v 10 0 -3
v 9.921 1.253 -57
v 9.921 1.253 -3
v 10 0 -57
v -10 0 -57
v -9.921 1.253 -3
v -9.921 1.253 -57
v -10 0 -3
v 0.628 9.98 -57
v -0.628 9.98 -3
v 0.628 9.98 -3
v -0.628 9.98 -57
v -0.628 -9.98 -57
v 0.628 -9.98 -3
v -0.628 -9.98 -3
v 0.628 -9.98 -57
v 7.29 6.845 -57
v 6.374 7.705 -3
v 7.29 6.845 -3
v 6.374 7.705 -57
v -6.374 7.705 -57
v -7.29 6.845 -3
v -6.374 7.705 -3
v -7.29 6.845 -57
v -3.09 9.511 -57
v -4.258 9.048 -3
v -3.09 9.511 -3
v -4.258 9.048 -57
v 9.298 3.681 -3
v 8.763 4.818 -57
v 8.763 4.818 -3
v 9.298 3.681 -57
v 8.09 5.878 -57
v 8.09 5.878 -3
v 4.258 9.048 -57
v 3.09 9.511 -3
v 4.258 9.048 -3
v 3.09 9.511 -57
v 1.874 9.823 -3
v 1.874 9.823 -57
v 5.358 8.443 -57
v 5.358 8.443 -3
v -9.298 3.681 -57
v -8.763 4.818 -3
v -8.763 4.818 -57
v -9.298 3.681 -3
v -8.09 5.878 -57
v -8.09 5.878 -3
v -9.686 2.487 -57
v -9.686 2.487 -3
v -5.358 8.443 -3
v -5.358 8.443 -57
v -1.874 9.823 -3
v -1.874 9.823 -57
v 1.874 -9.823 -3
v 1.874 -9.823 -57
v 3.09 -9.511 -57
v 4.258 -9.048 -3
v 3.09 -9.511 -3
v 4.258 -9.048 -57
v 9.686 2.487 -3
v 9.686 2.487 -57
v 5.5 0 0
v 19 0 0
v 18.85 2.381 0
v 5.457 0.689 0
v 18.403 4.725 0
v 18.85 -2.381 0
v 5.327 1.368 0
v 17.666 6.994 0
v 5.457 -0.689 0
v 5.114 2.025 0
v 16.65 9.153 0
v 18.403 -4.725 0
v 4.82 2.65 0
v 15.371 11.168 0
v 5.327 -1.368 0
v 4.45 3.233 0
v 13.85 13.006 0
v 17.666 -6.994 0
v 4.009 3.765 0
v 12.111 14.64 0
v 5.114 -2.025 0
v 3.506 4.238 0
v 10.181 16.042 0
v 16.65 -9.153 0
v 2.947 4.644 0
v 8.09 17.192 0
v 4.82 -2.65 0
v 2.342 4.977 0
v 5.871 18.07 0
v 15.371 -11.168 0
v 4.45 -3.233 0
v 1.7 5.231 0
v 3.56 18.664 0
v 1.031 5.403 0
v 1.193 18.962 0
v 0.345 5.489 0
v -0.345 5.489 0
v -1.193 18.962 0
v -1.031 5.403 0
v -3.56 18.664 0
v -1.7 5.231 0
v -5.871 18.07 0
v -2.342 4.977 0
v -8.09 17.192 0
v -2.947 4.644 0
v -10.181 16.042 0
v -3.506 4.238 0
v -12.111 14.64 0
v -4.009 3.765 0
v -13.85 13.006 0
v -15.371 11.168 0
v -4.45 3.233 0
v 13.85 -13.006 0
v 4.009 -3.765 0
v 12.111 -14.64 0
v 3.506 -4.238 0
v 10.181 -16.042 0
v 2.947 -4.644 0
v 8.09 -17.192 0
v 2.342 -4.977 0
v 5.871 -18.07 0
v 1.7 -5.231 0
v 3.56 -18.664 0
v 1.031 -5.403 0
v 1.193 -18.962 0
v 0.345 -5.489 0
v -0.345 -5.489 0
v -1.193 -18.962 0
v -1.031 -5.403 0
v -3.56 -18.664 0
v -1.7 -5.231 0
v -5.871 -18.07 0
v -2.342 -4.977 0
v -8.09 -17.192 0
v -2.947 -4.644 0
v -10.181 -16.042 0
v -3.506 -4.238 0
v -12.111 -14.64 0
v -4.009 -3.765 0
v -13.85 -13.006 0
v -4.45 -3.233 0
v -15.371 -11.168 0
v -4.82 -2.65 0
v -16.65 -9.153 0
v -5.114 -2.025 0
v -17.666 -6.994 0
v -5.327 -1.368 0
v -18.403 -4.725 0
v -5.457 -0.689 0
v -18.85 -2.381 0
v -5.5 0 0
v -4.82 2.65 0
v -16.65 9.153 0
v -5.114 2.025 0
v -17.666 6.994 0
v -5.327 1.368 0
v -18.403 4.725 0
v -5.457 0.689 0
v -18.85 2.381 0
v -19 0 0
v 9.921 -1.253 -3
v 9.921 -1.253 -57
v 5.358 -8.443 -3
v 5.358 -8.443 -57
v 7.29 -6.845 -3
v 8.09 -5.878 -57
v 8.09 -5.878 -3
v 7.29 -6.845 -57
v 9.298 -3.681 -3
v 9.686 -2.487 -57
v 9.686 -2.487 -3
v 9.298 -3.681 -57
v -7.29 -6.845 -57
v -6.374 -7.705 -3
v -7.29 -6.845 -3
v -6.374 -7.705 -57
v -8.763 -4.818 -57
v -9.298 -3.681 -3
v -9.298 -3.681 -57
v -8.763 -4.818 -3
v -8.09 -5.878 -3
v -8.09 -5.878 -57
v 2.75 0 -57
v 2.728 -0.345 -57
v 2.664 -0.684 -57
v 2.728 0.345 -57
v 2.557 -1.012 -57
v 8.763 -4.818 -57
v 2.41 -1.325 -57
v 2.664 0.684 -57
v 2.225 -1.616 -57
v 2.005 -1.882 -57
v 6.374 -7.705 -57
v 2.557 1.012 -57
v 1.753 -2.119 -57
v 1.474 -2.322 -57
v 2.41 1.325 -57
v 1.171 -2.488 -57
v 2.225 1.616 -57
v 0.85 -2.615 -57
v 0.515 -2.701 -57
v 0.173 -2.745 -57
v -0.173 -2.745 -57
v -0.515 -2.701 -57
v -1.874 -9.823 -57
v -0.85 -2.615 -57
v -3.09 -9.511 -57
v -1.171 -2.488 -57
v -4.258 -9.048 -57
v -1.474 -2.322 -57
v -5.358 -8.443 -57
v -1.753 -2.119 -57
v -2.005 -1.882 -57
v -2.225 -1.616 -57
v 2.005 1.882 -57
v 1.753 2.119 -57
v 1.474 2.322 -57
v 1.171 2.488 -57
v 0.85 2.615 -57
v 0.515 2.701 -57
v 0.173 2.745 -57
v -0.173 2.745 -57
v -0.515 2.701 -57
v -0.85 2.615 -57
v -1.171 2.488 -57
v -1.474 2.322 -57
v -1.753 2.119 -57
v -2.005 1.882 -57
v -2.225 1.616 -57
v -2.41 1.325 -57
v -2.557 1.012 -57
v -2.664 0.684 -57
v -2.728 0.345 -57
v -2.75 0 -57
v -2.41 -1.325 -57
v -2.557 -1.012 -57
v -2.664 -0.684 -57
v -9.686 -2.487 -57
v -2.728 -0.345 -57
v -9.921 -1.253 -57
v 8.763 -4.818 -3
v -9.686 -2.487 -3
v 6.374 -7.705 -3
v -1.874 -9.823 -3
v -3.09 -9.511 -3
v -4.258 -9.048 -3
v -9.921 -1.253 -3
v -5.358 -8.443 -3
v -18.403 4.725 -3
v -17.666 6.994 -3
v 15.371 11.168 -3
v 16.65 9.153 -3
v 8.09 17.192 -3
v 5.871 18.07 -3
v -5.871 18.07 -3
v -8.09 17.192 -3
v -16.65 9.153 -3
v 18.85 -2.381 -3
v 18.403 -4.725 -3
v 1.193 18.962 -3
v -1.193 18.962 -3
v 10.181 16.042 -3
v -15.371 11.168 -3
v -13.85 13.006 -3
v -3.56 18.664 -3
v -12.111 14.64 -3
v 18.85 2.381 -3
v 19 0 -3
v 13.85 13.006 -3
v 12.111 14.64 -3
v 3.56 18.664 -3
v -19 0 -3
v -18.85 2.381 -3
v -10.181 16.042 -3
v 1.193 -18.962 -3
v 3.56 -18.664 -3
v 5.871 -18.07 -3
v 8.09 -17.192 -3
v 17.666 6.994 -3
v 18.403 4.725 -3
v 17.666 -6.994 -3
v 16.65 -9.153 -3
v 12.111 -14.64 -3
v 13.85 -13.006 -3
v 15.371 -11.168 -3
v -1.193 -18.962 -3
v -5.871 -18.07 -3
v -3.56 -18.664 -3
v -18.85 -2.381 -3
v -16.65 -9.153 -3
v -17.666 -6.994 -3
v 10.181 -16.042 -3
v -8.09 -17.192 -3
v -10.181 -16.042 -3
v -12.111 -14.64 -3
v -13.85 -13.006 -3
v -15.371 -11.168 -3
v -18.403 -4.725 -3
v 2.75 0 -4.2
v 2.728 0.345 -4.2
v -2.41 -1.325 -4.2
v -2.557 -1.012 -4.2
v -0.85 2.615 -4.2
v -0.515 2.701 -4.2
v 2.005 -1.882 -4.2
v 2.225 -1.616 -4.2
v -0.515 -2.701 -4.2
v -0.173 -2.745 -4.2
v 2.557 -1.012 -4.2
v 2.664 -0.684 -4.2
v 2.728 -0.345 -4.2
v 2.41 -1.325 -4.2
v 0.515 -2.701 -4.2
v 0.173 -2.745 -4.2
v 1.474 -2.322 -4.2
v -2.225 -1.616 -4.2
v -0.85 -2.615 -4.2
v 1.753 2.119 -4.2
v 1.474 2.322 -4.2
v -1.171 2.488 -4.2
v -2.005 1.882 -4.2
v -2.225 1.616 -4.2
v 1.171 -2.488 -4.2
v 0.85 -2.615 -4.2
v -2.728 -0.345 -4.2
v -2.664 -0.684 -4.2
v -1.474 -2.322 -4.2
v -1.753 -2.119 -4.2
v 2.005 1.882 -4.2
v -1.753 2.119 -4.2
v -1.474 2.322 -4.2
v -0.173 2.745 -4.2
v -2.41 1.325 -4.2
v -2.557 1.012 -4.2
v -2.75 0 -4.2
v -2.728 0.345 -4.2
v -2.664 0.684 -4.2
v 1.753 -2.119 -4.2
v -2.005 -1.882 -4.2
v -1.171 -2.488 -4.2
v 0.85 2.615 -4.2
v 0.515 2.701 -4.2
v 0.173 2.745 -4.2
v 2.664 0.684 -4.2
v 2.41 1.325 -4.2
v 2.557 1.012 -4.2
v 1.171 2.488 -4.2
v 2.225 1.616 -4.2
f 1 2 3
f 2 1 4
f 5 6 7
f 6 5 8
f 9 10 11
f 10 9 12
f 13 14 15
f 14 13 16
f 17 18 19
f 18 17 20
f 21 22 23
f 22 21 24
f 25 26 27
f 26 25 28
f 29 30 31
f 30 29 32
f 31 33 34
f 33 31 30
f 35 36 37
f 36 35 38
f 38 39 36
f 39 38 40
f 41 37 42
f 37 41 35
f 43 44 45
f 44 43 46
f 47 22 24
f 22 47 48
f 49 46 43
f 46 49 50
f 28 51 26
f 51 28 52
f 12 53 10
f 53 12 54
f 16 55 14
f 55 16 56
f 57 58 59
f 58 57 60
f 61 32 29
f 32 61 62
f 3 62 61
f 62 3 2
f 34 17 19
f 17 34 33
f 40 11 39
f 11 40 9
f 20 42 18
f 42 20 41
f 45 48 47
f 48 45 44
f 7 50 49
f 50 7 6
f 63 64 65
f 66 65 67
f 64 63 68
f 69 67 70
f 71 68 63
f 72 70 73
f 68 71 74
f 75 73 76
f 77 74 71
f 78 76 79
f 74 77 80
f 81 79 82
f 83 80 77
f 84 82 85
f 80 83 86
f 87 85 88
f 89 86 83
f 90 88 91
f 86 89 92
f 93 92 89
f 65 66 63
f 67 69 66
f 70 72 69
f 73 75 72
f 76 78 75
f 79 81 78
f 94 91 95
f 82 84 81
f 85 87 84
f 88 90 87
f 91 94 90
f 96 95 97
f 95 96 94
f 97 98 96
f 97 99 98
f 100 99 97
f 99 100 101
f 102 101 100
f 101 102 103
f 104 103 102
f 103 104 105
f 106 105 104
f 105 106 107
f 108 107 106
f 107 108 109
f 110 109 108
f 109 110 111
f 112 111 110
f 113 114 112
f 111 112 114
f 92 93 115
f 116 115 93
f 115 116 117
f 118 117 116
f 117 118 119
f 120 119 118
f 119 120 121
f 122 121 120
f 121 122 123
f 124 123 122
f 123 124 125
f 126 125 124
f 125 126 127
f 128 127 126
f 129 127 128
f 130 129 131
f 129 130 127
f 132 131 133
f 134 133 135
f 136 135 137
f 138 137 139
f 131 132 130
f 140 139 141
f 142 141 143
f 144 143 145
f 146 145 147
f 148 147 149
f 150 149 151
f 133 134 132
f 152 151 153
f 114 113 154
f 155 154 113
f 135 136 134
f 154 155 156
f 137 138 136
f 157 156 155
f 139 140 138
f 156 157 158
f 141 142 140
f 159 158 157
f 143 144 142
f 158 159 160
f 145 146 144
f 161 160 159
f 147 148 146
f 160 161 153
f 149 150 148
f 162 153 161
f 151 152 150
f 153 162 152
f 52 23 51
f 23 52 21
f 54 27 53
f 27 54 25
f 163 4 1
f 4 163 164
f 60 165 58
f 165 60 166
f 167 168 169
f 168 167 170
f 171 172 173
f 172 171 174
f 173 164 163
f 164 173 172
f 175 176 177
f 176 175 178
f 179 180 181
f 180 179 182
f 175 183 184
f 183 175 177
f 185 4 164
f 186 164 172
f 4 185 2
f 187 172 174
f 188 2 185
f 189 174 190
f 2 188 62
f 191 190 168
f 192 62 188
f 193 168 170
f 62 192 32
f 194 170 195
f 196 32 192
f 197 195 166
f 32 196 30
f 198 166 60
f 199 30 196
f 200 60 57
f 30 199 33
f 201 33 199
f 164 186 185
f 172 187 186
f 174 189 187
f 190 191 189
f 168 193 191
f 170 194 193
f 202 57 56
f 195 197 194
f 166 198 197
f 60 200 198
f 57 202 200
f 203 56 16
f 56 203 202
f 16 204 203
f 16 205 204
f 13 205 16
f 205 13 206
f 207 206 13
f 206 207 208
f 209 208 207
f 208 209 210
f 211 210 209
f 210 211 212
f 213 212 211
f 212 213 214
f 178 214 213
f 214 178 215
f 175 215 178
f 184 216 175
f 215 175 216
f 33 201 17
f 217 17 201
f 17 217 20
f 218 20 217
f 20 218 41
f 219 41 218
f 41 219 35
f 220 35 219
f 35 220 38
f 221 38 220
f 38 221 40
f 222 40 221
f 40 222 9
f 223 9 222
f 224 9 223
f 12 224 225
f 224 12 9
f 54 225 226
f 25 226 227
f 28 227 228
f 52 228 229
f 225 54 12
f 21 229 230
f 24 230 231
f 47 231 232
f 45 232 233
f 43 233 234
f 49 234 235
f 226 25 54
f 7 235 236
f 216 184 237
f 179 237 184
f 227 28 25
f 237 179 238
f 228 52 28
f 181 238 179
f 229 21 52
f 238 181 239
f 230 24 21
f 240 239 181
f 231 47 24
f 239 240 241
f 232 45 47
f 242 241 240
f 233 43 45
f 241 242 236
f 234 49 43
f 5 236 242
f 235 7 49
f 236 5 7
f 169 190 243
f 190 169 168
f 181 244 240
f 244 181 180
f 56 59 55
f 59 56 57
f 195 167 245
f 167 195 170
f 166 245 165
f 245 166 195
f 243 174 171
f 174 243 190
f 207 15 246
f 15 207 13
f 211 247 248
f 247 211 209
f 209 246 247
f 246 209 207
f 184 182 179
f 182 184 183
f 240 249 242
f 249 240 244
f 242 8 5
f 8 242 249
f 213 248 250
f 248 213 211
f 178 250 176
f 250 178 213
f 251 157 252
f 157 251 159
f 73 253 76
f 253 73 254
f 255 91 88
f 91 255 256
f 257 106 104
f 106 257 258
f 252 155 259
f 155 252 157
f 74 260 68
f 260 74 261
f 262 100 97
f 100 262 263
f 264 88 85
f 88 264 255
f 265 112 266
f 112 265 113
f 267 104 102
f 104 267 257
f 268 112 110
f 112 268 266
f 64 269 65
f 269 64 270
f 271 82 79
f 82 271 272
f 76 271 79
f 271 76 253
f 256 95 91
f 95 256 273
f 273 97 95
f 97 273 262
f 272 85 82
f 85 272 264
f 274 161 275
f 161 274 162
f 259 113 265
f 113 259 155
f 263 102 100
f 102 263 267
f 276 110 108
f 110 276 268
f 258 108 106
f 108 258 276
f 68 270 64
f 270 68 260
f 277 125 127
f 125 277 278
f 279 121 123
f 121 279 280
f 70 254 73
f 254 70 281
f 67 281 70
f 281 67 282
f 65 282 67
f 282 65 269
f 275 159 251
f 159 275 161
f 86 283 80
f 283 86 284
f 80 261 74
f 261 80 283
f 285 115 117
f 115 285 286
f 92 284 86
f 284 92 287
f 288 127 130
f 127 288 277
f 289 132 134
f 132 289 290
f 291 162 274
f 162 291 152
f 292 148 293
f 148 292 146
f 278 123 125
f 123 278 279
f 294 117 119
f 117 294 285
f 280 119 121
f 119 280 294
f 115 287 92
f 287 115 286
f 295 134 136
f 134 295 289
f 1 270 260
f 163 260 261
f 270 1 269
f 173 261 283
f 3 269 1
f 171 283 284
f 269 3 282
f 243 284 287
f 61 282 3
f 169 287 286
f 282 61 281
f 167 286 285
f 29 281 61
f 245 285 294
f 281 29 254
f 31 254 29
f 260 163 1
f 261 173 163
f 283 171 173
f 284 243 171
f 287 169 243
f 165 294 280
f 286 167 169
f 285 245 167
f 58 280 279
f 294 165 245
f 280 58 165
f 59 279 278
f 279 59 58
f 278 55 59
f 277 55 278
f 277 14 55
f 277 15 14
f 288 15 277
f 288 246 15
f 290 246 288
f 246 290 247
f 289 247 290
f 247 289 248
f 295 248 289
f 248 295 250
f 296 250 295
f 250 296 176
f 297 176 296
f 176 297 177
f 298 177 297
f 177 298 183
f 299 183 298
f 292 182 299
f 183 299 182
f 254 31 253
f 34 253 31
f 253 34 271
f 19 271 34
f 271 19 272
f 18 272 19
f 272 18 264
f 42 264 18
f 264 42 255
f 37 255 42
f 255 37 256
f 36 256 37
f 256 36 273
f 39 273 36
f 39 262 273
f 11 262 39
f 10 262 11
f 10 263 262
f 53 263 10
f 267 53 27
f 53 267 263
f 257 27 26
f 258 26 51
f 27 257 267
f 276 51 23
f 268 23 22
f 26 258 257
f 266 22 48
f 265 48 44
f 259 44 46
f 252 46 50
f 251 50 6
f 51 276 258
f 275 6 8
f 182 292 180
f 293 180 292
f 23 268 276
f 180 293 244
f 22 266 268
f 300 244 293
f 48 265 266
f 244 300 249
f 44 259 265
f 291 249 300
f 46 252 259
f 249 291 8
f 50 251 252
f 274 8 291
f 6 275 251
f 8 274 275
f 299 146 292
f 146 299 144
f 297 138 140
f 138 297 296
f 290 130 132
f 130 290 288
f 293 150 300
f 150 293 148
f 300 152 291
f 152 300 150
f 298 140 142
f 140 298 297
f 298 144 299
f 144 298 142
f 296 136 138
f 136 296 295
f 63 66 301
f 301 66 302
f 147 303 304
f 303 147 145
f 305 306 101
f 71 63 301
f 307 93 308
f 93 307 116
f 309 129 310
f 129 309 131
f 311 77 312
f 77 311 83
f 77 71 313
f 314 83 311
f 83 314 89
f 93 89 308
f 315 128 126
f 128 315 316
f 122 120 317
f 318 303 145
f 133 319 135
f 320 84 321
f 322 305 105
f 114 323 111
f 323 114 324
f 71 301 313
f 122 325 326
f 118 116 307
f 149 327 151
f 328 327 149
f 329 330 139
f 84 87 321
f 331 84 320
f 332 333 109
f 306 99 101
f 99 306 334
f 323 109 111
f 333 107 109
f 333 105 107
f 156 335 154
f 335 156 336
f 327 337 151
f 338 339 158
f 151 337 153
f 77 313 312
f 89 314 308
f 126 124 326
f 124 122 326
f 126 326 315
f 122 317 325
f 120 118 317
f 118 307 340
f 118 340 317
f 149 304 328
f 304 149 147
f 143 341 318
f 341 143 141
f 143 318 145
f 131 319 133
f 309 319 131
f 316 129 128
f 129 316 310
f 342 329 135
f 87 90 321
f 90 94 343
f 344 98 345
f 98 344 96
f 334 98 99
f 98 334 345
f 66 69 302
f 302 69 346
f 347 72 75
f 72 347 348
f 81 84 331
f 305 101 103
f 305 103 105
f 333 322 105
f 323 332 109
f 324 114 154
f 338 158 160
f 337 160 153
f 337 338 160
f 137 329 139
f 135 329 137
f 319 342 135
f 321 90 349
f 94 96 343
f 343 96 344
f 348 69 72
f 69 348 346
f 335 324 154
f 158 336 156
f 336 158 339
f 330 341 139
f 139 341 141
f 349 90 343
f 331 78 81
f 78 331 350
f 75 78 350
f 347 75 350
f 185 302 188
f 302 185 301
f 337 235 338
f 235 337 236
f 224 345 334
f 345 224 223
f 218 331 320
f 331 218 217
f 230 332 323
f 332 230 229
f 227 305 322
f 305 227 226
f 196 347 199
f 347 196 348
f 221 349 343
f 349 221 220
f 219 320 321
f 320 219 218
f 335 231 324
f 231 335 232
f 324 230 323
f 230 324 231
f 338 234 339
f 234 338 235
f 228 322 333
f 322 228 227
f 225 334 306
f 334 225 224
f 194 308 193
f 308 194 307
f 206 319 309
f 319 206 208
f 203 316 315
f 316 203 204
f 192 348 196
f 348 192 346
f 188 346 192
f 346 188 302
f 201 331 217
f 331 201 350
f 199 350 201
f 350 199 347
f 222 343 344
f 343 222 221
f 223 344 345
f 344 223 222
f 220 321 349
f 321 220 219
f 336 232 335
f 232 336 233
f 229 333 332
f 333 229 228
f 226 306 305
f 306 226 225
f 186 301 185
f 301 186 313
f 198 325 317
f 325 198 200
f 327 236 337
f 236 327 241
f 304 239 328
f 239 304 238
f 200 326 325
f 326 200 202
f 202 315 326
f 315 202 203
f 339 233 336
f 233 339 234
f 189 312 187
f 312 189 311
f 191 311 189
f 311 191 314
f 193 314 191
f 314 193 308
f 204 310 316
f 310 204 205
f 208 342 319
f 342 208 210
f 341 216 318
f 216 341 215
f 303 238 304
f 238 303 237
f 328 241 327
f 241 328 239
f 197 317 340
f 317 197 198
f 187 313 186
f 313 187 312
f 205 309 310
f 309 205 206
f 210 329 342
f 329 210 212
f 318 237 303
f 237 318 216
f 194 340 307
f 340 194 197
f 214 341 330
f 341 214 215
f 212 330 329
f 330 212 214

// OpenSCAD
$fn = 50;


difference() {
	union() {
		translate(v = [0, 0, -57.0000000000]) {
			cylinder(h = 57, r = 10.0000000000);
		}
		translate(v = [0, 0, -3.0000000000]) {
			cylinder(h = 3, r = 19.0000000000);
		}
	}
	union() {
		translate(v = [0, 0, 0]) {
			rotate(a = [0, 0, 0]) {
				difference() {
					union() {
						#translate(v = [0, 0, -57.0000000000]) {
							cylinder(h = 57, r = 2.2500000000);
						}
						#translate(v = [0, 0, -4.2000000000]) {
							cylinder(h = 4.2000000000, r = 10.0000000000, r1 = 2.7500000000, r2 = 5.5000000000);
						}
						#translate(v = [0, 0, -57.0000000000]) {
							cylinder(h = 57, r = 2.7500000000);
						}
						#translate(v = [0, 0, -57.0000000000]) {
							cylinder(h = 57, r = 2.2500000000);
						}
					}
					union();
				}
			}
		}
	}
}
